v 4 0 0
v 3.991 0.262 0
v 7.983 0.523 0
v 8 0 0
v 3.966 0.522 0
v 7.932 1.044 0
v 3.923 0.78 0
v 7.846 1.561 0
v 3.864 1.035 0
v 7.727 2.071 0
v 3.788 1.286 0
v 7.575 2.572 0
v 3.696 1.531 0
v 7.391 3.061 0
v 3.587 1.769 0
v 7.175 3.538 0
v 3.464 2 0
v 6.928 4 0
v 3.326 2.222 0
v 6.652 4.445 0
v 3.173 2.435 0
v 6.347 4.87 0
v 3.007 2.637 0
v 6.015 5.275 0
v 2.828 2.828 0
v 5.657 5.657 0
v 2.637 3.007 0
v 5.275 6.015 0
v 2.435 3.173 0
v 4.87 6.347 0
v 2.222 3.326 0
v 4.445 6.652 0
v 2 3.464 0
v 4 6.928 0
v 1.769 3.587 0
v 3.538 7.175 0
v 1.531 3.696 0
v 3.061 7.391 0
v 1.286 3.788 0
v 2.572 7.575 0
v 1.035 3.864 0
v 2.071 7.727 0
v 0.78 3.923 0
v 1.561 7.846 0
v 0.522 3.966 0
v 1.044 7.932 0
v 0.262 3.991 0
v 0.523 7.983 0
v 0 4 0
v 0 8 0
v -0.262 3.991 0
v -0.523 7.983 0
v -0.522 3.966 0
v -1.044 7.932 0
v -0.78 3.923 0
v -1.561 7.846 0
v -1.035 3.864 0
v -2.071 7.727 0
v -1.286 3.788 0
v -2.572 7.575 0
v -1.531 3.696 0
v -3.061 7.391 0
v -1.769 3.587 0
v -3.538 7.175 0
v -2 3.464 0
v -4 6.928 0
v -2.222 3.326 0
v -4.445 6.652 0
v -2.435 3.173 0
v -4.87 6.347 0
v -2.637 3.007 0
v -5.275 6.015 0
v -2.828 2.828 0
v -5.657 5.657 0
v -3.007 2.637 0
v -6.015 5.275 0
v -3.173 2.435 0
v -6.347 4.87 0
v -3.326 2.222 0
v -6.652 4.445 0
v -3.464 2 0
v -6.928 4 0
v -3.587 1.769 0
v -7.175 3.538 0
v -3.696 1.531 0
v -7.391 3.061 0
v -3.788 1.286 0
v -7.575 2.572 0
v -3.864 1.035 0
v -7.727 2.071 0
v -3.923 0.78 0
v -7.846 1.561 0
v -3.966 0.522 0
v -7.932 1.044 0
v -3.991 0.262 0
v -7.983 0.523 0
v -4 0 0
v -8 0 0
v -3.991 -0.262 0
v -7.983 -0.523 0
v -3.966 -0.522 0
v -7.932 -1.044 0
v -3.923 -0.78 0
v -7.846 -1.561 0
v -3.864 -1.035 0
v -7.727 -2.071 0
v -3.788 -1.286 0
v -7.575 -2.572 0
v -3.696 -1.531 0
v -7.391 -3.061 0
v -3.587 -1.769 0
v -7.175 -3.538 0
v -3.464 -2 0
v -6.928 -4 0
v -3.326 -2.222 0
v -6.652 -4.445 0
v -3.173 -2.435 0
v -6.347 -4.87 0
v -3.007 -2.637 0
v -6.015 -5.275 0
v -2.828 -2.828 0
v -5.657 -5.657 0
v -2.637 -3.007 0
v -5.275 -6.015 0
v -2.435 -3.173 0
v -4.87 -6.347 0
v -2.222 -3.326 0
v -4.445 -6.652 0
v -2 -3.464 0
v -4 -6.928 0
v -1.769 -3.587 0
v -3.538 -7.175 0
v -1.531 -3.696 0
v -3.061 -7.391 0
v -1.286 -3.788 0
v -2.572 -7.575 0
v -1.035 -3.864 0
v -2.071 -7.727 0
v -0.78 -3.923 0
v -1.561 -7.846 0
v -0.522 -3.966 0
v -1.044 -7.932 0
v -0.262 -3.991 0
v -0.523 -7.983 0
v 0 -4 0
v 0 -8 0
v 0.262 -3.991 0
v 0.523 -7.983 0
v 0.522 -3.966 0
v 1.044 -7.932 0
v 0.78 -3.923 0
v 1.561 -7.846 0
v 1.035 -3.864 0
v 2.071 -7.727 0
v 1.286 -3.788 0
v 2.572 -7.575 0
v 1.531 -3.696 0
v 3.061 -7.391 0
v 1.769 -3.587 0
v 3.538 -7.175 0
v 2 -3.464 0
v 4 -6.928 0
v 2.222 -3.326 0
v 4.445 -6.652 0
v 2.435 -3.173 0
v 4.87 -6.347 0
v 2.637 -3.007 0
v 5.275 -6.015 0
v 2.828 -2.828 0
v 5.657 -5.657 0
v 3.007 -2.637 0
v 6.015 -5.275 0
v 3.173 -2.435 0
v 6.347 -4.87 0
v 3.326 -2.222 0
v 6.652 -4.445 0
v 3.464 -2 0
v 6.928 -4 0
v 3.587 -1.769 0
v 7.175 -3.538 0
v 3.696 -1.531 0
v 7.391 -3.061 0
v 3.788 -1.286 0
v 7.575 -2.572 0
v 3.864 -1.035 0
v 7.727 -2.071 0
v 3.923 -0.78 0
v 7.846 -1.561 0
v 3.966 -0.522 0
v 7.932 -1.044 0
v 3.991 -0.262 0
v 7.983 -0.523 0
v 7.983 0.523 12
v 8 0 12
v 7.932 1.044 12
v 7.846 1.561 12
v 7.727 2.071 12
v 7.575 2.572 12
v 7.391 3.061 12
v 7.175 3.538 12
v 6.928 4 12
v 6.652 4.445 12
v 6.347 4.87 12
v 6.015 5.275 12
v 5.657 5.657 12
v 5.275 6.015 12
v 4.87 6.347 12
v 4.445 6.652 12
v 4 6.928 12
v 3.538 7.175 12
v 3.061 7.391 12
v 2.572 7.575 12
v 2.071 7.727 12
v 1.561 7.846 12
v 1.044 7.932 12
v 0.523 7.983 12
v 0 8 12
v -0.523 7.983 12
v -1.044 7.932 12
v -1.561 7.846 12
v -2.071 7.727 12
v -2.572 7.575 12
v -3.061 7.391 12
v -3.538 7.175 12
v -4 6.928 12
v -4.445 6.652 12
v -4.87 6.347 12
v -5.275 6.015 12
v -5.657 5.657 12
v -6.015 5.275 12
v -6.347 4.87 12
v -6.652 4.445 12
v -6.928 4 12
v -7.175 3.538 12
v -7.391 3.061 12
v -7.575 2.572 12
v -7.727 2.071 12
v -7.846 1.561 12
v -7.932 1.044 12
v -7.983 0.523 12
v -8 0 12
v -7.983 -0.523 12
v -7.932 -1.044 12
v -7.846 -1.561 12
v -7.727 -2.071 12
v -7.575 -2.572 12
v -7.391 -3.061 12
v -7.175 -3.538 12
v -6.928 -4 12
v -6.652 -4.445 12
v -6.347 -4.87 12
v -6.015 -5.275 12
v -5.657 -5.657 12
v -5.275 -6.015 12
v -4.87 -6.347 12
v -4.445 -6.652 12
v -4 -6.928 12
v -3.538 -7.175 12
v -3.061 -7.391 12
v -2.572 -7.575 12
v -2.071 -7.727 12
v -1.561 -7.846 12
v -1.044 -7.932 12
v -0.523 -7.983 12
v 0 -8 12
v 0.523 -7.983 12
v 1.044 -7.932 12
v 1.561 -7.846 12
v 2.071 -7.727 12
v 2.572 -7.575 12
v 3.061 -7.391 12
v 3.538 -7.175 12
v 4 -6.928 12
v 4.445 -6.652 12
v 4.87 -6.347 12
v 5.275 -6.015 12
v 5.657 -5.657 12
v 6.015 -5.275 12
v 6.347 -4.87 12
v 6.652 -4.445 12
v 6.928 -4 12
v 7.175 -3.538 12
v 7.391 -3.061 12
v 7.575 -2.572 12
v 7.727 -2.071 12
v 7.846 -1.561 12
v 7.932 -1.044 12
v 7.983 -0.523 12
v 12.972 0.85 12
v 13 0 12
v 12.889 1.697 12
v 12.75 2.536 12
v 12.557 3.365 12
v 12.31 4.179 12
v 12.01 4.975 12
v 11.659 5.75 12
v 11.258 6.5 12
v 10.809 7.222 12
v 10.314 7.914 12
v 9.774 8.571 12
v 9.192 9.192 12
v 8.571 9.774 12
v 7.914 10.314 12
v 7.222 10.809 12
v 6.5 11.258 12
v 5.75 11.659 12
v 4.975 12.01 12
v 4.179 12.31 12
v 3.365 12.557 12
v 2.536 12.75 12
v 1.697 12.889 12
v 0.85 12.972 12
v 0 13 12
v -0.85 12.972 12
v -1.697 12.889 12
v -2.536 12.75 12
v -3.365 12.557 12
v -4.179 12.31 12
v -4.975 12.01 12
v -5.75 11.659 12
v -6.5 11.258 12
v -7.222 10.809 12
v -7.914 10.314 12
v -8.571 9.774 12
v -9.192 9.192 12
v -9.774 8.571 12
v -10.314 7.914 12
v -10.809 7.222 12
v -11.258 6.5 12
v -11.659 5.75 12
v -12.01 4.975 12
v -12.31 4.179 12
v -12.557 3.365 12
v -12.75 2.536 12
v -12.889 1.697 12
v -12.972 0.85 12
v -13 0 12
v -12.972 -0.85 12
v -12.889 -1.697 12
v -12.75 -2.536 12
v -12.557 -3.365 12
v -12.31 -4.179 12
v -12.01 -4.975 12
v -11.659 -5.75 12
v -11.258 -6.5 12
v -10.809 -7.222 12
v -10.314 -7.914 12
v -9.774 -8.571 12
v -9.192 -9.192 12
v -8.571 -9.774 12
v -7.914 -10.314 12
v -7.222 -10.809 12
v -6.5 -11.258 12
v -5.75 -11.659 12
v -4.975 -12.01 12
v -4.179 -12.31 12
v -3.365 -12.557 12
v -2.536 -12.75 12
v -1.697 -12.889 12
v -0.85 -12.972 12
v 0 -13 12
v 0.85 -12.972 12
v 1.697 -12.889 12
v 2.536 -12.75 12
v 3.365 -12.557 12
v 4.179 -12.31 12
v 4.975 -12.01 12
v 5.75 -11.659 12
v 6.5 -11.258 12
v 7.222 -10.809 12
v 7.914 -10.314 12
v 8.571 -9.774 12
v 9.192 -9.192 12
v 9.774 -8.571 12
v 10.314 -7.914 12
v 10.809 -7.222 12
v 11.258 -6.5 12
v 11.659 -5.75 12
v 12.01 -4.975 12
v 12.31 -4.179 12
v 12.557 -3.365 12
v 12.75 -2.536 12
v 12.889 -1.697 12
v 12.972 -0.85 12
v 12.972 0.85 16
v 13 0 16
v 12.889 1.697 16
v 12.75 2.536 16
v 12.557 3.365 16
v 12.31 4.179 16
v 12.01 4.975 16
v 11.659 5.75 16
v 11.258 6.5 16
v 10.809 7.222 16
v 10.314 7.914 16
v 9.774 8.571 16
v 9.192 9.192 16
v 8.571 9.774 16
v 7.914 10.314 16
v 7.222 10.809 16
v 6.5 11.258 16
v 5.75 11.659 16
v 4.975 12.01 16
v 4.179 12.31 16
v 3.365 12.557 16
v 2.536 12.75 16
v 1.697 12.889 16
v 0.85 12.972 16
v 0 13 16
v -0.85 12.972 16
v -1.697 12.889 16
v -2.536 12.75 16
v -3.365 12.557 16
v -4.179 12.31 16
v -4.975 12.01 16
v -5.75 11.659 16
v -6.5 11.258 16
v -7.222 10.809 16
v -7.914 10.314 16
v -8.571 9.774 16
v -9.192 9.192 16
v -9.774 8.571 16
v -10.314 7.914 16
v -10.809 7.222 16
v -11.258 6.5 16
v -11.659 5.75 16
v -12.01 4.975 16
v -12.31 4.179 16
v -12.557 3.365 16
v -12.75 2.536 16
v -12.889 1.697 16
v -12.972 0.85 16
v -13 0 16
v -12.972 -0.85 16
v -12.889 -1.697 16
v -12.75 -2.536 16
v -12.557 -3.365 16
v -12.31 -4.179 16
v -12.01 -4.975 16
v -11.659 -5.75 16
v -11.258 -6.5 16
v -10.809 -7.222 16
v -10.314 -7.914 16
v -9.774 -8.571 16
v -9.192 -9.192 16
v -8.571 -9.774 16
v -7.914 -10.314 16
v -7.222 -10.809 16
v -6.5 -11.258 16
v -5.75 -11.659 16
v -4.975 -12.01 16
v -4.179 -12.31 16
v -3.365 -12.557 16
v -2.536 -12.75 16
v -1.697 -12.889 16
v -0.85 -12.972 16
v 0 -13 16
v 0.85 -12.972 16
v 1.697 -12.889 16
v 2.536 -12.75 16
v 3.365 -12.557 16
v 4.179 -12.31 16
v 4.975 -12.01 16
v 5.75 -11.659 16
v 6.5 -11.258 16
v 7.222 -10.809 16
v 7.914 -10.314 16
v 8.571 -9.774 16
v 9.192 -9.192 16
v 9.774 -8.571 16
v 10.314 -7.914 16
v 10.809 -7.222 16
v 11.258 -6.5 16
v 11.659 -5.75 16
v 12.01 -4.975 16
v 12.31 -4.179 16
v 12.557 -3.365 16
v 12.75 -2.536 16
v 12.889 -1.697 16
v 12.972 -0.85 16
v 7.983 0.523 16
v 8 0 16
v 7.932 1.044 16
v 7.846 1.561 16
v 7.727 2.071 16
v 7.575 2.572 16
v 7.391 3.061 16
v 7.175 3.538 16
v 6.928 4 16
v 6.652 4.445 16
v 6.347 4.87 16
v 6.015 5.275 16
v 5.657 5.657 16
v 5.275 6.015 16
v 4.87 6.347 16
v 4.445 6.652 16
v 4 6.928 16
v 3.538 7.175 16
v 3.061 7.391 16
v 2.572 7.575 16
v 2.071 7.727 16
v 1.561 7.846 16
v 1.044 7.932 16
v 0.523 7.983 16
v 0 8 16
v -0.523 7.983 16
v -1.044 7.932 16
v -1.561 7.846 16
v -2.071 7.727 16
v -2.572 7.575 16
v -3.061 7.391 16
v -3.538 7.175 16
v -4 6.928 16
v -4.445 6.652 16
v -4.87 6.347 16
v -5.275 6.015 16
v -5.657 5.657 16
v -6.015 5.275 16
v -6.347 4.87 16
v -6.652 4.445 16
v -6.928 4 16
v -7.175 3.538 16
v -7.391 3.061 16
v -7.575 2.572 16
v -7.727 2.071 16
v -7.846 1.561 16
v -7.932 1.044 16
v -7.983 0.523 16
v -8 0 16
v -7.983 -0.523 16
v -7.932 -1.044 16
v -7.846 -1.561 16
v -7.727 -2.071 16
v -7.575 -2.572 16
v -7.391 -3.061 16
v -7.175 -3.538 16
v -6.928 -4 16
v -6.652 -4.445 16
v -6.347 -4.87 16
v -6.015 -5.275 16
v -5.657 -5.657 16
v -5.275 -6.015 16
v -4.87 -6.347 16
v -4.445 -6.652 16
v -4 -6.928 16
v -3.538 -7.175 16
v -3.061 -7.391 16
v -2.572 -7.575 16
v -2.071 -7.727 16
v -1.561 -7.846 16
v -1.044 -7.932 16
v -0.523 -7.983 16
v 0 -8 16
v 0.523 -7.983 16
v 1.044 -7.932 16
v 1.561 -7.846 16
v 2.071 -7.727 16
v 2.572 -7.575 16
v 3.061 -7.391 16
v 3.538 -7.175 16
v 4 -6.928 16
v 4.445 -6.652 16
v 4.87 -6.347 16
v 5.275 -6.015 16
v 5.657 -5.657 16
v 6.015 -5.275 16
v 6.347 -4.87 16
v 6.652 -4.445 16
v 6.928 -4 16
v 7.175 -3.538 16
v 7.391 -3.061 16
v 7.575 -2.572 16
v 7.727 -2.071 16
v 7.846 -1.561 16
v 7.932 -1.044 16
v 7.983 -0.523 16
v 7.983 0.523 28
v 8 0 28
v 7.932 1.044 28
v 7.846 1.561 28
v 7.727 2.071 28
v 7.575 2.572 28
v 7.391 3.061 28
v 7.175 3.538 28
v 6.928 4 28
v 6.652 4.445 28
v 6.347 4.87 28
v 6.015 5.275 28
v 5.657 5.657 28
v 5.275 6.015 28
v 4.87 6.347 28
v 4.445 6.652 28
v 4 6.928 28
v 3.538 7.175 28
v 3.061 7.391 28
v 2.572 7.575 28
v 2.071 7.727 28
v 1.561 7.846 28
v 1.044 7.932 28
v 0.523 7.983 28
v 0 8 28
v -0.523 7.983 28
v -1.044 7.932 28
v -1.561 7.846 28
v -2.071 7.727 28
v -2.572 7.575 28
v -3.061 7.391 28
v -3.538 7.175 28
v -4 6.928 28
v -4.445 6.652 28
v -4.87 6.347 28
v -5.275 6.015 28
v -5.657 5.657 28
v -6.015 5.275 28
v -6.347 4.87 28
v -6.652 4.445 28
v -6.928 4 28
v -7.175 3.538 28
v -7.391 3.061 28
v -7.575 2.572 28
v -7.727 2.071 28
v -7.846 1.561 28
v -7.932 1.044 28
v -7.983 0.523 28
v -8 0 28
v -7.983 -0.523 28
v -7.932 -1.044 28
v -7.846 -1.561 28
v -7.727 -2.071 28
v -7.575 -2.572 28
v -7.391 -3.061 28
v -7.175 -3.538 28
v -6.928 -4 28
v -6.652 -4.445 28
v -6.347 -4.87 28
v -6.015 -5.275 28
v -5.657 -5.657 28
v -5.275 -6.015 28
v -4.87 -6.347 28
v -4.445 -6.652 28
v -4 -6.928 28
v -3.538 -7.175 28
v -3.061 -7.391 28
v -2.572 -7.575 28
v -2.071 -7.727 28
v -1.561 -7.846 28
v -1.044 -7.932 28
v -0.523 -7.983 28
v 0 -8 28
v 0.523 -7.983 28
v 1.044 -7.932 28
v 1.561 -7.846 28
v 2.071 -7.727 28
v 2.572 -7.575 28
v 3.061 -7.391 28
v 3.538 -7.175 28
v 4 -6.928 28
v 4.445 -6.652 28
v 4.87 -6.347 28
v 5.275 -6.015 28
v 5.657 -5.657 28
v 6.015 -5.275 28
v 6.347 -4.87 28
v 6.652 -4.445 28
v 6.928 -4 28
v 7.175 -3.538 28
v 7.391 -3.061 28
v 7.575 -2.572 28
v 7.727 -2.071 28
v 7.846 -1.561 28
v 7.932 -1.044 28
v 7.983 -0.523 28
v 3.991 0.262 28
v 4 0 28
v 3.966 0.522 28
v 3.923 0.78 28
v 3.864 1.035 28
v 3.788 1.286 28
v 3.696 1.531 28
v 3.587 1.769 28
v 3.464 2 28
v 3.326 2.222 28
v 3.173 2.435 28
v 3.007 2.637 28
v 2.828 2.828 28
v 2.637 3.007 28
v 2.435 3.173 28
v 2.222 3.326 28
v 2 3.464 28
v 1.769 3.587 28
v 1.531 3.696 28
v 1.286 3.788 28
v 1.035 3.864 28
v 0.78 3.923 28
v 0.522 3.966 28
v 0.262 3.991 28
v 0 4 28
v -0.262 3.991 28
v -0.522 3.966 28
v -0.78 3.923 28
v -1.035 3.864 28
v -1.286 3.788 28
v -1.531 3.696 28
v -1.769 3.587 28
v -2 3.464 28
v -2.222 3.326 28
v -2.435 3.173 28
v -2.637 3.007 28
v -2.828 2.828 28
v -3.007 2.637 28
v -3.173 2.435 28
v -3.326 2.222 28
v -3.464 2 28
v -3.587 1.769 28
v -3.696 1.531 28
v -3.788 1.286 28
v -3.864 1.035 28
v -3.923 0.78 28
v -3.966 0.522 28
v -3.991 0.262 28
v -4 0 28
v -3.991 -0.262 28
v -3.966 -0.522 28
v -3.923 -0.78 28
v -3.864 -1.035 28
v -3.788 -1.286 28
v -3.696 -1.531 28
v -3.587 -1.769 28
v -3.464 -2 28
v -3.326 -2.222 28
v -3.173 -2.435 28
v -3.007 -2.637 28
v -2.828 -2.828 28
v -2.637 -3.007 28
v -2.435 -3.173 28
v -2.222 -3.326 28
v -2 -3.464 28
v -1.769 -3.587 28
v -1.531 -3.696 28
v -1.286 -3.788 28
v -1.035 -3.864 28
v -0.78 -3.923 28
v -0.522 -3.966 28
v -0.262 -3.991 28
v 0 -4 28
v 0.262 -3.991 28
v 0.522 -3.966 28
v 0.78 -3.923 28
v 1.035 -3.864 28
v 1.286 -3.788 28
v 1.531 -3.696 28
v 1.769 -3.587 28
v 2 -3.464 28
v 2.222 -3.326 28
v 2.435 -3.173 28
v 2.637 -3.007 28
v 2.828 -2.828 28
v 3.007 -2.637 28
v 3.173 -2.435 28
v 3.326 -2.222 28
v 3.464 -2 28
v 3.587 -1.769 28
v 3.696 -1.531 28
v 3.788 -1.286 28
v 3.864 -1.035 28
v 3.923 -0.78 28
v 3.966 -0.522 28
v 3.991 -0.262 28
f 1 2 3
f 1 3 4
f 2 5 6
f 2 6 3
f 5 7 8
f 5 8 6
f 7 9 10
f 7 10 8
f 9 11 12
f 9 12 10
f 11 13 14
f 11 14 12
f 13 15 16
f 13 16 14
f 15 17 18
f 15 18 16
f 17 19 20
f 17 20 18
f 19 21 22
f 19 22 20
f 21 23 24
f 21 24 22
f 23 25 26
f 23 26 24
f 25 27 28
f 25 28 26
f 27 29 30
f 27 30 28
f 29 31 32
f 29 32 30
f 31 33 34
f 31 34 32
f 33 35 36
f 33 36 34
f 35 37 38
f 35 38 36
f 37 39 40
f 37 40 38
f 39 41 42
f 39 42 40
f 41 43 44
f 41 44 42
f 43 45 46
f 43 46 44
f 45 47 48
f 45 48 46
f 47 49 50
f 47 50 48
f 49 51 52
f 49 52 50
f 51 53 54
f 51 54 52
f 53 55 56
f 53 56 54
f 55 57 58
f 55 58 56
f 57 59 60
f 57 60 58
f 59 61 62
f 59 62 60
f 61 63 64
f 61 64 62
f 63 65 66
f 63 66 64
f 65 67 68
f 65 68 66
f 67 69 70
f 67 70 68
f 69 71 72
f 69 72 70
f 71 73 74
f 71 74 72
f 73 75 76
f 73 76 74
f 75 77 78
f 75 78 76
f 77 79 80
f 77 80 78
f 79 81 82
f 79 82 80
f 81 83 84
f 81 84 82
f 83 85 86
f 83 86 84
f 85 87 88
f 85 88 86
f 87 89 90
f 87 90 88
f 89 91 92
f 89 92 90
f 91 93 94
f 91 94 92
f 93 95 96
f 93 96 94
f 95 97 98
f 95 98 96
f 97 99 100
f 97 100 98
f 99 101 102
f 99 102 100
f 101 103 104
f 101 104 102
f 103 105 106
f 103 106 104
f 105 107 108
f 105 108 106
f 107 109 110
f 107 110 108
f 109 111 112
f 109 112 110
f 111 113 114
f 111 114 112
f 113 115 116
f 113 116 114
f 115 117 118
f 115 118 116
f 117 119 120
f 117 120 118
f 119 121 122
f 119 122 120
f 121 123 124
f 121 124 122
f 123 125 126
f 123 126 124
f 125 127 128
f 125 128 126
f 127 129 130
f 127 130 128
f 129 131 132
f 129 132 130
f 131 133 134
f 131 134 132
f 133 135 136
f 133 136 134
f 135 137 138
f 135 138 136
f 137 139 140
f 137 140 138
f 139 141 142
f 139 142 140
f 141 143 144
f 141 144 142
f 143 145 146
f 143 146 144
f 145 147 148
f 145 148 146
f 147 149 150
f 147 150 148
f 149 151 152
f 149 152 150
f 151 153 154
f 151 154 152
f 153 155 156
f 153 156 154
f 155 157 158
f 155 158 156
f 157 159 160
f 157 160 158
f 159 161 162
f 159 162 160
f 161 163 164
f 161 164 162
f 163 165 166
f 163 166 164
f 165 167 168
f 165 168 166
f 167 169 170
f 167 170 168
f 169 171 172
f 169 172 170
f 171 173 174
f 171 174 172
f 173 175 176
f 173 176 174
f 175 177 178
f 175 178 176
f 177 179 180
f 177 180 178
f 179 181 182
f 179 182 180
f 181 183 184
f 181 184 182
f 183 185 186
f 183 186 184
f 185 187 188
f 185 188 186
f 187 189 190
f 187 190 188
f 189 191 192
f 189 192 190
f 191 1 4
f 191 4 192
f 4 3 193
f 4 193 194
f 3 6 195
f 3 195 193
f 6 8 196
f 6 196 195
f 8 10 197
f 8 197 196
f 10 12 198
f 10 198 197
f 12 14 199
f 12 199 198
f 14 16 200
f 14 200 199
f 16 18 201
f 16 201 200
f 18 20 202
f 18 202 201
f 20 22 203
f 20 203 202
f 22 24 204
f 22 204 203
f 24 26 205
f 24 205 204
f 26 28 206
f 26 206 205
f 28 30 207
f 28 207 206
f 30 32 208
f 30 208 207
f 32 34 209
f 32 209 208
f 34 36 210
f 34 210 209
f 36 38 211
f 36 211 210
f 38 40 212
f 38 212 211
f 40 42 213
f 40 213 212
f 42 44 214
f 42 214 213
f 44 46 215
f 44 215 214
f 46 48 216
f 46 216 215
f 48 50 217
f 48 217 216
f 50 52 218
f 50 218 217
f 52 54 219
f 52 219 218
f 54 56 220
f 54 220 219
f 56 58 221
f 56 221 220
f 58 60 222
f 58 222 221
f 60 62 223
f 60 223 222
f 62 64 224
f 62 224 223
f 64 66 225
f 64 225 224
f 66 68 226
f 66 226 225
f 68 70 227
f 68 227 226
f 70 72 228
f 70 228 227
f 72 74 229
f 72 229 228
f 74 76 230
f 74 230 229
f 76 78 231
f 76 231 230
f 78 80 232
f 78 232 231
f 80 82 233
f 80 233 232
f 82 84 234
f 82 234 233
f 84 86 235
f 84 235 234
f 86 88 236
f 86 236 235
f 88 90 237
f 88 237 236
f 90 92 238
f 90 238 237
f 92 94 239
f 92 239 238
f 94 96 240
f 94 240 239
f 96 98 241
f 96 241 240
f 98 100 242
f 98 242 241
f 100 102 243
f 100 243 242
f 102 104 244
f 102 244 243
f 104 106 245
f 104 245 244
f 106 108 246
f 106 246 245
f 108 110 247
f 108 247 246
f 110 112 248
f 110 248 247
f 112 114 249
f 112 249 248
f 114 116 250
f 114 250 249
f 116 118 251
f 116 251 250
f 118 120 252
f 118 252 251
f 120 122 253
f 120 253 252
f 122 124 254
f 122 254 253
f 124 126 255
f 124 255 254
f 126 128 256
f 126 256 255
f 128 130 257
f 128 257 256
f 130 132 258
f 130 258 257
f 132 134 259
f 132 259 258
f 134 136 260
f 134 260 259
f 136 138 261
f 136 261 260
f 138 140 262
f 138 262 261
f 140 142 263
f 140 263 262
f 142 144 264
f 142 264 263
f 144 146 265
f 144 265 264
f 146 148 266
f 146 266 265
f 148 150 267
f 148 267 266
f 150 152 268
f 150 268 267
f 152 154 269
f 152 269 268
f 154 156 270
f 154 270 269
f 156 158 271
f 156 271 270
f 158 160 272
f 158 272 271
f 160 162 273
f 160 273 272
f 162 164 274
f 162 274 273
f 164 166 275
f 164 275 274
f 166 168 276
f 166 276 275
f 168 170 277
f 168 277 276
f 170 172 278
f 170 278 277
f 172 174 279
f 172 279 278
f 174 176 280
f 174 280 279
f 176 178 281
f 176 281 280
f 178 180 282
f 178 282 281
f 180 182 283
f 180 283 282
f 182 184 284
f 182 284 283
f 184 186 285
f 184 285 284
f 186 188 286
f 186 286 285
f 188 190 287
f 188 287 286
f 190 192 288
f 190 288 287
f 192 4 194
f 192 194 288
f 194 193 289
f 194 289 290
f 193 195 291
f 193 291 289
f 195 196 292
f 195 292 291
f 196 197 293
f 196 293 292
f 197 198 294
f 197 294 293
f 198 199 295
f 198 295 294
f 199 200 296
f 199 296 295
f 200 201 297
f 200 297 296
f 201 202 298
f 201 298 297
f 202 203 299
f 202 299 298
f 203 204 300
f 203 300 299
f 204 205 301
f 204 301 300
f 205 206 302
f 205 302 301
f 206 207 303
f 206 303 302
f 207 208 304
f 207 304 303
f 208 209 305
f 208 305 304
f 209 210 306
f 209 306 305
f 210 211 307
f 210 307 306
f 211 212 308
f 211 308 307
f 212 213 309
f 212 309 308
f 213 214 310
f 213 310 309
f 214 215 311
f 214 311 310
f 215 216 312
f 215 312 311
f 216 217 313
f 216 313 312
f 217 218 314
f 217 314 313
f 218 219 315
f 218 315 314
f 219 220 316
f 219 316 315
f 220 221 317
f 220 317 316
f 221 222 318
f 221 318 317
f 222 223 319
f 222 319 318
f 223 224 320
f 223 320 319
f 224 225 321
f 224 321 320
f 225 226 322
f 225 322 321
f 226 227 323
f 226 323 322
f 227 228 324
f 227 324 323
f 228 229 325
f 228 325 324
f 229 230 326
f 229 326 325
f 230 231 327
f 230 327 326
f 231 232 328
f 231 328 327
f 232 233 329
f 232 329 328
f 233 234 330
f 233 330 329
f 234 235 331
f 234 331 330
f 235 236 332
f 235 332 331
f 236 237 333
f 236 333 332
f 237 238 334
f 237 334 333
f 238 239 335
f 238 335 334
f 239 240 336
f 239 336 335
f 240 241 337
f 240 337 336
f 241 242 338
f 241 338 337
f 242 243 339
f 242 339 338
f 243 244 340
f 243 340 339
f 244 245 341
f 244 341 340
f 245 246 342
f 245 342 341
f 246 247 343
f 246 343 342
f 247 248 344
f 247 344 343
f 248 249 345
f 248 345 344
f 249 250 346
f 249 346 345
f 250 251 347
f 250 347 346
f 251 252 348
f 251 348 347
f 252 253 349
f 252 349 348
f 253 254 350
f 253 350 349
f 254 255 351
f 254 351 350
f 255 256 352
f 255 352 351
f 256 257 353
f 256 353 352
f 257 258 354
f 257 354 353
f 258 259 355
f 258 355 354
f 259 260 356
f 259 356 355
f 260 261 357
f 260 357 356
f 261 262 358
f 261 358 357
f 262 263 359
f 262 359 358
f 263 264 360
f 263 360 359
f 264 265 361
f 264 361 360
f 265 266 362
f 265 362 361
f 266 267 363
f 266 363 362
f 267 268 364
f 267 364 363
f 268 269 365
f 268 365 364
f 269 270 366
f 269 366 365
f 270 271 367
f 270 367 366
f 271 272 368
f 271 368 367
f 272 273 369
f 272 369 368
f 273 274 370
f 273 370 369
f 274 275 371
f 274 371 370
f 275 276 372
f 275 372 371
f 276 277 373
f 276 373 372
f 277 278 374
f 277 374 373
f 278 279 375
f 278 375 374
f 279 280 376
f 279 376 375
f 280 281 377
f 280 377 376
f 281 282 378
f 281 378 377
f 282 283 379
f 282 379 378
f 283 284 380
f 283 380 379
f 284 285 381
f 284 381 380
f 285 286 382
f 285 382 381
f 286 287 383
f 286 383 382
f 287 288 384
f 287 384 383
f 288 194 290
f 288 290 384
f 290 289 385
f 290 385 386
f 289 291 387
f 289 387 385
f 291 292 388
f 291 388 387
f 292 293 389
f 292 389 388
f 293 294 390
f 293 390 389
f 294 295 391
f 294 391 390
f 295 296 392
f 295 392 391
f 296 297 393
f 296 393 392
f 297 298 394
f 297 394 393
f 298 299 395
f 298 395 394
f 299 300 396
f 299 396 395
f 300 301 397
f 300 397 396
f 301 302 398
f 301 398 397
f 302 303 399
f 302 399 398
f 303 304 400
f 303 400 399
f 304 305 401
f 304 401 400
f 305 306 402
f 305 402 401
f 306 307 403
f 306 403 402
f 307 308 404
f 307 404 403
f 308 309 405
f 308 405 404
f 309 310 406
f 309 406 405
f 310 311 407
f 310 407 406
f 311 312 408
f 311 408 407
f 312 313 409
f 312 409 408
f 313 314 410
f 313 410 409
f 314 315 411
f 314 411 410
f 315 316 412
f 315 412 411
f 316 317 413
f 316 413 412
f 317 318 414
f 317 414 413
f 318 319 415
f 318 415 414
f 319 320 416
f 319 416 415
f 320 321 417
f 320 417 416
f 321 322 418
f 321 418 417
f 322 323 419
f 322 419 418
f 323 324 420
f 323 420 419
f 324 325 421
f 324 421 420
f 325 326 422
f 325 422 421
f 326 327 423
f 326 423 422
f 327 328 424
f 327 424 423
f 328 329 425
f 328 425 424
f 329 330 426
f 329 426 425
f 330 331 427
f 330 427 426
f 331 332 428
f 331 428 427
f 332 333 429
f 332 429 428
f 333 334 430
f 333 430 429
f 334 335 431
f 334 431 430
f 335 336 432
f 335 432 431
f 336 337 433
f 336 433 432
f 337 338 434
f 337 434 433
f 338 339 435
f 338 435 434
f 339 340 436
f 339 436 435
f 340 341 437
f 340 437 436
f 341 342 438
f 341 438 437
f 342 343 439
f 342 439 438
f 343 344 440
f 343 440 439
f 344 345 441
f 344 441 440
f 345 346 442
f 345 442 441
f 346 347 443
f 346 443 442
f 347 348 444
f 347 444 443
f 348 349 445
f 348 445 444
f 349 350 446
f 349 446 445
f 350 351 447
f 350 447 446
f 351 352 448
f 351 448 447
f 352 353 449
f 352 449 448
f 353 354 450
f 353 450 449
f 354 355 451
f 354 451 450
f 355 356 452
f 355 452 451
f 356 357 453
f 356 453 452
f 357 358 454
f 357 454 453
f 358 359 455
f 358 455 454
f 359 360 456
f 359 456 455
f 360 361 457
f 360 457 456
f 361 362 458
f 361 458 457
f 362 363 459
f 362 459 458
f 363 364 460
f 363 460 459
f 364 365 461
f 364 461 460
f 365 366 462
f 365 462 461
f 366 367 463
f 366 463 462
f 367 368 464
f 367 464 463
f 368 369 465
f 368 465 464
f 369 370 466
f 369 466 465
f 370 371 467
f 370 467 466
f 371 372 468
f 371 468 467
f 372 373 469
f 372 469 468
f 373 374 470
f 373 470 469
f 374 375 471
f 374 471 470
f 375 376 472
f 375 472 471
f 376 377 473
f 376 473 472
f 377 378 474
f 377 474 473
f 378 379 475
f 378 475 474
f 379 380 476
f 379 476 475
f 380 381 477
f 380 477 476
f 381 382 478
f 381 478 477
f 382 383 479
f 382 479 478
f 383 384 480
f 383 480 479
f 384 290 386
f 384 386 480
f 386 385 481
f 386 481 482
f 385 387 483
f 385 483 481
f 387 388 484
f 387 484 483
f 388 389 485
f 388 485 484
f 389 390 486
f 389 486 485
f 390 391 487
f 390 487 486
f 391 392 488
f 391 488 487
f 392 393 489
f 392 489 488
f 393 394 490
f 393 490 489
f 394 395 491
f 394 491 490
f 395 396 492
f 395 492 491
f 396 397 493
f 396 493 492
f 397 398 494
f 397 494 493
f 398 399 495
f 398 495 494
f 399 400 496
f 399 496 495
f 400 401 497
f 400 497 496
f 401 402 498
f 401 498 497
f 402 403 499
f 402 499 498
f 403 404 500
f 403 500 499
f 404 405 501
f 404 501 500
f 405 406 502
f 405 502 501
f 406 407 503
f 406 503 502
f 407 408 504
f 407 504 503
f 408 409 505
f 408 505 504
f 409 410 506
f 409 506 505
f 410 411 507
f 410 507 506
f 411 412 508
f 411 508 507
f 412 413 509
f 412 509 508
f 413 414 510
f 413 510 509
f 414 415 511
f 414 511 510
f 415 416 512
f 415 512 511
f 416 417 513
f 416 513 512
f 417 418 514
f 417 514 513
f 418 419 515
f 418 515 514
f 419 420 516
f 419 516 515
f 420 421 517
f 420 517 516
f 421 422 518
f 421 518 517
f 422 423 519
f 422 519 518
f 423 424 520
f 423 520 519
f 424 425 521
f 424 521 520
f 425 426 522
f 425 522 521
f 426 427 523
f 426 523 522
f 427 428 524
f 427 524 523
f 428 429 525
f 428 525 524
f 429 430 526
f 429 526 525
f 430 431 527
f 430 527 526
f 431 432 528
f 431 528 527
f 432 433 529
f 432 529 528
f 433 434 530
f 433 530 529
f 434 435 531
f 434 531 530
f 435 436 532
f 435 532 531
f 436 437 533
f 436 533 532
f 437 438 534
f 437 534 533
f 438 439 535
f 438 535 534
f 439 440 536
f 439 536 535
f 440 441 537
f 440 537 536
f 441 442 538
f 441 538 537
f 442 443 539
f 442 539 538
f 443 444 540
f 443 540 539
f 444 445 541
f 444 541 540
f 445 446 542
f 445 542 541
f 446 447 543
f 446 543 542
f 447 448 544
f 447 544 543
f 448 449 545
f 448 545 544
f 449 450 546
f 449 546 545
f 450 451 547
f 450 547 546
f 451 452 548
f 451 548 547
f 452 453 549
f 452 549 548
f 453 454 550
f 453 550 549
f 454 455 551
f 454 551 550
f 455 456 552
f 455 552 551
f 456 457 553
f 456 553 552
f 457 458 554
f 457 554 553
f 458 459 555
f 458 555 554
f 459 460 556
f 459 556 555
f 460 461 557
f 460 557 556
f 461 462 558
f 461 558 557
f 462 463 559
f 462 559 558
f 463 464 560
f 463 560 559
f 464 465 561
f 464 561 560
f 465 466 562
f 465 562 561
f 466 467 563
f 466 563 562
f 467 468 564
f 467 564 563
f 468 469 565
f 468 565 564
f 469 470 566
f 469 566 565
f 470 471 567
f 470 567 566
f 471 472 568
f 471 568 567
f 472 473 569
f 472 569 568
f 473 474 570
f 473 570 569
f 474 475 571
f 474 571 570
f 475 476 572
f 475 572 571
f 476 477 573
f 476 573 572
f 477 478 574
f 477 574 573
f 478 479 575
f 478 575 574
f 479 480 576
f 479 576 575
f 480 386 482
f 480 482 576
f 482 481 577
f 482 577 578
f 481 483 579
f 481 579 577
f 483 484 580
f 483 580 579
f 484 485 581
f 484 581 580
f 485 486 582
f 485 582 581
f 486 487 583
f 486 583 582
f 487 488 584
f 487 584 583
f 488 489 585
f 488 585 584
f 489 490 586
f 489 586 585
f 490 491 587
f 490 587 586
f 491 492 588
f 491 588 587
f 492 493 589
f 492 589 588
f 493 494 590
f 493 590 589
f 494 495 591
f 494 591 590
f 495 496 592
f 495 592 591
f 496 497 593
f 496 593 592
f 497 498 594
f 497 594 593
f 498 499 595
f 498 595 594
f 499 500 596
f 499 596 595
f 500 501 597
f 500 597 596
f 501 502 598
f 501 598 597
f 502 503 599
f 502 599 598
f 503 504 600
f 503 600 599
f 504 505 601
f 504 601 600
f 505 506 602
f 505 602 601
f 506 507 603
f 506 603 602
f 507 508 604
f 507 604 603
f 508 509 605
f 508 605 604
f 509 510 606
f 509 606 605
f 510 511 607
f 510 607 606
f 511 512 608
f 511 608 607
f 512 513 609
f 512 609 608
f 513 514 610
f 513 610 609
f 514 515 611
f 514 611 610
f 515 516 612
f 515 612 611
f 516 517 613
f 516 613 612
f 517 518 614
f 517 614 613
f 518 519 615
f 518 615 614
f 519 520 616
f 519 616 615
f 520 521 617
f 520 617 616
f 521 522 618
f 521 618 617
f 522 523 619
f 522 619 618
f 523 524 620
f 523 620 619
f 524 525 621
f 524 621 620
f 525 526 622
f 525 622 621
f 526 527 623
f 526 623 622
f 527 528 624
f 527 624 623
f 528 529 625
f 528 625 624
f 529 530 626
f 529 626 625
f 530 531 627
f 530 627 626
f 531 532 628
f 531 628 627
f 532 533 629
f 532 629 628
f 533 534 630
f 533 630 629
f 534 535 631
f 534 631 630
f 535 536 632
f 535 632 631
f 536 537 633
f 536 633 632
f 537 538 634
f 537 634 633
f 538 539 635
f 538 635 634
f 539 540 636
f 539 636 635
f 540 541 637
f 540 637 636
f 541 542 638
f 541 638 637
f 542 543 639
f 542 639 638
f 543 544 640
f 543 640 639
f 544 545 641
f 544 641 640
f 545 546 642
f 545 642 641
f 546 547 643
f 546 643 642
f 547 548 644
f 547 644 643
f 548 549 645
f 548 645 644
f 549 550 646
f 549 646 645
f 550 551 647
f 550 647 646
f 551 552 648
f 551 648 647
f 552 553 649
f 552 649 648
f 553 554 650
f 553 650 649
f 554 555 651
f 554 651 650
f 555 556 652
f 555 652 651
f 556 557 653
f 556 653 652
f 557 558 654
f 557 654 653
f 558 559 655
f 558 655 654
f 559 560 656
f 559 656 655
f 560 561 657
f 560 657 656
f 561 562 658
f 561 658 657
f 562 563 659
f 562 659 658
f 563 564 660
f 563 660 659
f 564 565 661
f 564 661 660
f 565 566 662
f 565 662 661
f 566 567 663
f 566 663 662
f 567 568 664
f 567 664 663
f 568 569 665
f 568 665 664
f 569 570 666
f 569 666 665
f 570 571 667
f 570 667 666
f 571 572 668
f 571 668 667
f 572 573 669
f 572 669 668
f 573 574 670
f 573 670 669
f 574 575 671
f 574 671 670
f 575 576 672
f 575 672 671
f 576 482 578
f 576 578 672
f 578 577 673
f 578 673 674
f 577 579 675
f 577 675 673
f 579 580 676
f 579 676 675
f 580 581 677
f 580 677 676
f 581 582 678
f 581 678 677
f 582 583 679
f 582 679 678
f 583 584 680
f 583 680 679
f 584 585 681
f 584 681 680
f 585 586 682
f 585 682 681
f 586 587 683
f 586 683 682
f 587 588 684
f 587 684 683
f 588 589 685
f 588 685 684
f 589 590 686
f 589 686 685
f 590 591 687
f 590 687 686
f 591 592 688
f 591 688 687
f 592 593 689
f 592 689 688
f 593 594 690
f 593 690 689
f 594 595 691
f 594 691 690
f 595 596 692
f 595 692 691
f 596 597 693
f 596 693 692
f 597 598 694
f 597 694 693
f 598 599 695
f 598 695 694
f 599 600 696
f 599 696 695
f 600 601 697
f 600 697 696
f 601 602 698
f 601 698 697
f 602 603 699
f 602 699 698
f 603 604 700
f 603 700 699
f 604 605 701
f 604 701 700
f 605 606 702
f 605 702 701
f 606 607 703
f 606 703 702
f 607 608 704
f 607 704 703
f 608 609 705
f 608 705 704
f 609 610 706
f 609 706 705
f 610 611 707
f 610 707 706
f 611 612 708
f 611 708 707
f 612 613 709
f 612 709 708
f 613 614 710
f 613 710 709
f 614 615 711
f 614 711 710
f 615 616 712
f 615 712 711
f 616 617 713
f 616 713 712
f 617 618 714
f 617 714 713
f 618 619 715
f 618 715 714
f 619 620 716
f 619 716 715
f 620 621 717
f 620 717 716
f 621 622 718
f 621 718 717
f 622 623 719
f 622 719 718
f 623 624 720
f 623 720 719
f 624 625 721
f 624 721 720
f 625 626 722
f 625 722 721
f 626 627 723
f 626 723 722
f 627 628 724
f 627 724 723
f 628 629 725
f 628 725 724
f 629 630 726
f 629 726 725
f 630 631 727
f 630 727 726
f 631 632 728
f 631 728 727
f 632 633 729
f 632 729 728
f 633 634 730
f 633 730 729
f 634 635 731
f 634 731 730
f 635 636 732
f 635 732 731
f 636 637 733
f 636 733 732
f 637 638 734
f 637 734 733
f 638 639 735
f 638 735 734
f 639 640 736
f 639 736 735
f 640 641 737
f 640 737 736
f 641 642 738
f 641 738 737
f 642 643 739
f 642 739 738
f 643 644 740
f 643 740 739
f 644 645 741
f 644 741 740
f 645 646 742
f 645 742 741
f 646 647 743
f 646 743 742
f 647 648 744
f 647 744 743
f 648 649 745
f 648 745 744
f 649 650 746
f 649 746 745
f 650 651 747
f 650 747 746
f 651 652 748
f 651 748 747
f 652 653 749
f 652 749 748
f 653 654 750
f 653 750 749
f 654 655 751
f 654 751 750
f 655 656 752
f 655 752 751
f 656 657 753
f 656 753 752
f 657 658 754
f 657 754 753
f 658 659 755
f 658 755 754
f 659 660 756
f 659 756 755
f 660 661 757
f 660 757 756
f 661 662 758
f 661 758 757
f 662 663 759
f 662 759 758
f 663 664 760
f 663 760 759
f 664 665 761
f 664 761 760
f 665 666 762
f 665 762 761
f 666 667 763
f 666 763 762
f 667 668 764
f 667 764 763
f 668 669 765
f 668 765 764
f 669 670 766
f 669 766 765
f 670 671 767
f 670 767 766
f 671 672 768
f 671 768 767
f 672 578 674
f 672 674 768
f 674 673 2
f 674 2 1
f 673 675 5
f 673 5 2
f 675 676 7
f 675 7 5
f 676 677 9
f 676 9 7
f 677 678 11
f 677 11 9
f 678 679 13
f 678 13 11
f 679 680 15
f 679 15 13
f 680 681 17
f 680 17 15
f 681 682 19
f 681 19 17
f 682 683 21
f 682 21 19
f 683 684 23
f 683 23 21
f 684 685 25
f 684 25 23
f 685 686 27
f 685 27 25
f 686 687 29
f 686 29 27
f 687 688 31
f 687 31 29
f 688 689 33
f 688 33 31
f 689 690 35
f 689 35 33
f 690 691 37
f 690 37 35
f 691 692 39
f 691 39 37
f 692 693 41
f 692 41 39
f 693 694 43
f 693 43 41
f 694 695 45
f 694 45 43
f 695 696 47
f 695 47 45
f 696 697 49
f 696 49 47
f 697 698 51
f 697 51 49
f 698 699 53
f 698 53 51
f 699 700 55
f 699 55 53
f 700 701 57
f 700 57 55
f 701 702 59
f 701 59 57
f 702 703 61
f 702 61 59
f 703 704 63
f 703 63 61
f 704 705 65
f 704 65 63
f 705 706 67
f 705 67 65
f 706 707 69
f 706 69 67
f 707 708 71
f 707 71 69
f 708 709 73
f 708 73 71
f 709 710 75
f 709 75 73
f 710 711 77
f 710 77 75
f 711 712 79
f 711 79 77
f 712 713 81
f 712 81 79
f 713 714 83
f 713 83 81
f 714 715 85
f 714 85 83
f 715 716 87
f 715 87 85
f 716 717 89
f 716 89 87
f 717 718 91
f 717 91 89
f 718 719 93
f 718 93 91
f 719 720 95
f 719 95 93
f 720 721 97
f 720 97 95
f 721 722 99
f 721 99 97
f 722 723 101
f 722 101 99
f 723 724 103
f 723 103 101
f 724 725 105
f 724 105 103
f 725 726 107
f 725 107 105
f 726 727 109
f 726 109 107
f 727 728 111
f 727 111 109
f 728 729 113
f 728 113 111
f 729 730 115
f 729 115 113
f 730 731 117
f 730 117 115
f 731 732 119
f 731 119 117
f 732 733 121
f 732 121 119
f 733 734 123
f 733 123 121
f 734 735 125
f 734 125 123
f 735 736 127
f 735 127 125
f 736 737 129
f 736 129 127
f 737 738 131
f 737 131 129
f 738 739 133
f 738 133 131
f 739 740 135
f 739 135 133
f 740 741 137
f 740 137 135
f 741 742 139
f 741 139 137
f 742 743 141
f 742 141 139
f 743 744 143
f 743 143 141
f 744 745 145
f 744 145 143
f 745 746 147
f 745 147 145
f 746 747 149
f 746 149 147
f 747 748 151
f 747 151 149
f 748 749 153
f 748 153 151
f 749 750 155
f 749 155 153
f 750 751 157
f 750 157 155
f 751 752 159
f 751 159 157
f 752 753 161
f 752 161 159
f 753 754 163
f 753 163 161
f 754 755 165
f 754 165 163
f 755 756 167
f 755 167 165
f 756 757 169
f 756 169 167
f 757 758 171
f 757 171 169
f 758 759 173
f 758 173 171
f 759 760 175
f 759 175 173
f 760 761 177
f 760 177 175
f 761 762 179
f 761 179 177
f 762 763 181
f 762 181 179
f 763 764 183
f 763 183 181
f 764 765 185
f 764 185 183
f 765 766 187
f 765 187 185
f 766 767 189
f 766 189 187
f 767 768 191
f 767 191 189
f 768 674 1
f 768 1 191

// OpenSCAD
// Original MechIntel educational model. CC0-1.0. Units: mm.
// Not a standardized or load-rated component.
$fn=96;
// Section points: [radius, height], mm. Edit to change the profile.
section=[[4, 0], [8, 0], [8, 12], [13, 12], [13, 16], [8, 16], [8, 28], [4, 28]];
rotate_extrude($fn=96) polygon(points=section);
